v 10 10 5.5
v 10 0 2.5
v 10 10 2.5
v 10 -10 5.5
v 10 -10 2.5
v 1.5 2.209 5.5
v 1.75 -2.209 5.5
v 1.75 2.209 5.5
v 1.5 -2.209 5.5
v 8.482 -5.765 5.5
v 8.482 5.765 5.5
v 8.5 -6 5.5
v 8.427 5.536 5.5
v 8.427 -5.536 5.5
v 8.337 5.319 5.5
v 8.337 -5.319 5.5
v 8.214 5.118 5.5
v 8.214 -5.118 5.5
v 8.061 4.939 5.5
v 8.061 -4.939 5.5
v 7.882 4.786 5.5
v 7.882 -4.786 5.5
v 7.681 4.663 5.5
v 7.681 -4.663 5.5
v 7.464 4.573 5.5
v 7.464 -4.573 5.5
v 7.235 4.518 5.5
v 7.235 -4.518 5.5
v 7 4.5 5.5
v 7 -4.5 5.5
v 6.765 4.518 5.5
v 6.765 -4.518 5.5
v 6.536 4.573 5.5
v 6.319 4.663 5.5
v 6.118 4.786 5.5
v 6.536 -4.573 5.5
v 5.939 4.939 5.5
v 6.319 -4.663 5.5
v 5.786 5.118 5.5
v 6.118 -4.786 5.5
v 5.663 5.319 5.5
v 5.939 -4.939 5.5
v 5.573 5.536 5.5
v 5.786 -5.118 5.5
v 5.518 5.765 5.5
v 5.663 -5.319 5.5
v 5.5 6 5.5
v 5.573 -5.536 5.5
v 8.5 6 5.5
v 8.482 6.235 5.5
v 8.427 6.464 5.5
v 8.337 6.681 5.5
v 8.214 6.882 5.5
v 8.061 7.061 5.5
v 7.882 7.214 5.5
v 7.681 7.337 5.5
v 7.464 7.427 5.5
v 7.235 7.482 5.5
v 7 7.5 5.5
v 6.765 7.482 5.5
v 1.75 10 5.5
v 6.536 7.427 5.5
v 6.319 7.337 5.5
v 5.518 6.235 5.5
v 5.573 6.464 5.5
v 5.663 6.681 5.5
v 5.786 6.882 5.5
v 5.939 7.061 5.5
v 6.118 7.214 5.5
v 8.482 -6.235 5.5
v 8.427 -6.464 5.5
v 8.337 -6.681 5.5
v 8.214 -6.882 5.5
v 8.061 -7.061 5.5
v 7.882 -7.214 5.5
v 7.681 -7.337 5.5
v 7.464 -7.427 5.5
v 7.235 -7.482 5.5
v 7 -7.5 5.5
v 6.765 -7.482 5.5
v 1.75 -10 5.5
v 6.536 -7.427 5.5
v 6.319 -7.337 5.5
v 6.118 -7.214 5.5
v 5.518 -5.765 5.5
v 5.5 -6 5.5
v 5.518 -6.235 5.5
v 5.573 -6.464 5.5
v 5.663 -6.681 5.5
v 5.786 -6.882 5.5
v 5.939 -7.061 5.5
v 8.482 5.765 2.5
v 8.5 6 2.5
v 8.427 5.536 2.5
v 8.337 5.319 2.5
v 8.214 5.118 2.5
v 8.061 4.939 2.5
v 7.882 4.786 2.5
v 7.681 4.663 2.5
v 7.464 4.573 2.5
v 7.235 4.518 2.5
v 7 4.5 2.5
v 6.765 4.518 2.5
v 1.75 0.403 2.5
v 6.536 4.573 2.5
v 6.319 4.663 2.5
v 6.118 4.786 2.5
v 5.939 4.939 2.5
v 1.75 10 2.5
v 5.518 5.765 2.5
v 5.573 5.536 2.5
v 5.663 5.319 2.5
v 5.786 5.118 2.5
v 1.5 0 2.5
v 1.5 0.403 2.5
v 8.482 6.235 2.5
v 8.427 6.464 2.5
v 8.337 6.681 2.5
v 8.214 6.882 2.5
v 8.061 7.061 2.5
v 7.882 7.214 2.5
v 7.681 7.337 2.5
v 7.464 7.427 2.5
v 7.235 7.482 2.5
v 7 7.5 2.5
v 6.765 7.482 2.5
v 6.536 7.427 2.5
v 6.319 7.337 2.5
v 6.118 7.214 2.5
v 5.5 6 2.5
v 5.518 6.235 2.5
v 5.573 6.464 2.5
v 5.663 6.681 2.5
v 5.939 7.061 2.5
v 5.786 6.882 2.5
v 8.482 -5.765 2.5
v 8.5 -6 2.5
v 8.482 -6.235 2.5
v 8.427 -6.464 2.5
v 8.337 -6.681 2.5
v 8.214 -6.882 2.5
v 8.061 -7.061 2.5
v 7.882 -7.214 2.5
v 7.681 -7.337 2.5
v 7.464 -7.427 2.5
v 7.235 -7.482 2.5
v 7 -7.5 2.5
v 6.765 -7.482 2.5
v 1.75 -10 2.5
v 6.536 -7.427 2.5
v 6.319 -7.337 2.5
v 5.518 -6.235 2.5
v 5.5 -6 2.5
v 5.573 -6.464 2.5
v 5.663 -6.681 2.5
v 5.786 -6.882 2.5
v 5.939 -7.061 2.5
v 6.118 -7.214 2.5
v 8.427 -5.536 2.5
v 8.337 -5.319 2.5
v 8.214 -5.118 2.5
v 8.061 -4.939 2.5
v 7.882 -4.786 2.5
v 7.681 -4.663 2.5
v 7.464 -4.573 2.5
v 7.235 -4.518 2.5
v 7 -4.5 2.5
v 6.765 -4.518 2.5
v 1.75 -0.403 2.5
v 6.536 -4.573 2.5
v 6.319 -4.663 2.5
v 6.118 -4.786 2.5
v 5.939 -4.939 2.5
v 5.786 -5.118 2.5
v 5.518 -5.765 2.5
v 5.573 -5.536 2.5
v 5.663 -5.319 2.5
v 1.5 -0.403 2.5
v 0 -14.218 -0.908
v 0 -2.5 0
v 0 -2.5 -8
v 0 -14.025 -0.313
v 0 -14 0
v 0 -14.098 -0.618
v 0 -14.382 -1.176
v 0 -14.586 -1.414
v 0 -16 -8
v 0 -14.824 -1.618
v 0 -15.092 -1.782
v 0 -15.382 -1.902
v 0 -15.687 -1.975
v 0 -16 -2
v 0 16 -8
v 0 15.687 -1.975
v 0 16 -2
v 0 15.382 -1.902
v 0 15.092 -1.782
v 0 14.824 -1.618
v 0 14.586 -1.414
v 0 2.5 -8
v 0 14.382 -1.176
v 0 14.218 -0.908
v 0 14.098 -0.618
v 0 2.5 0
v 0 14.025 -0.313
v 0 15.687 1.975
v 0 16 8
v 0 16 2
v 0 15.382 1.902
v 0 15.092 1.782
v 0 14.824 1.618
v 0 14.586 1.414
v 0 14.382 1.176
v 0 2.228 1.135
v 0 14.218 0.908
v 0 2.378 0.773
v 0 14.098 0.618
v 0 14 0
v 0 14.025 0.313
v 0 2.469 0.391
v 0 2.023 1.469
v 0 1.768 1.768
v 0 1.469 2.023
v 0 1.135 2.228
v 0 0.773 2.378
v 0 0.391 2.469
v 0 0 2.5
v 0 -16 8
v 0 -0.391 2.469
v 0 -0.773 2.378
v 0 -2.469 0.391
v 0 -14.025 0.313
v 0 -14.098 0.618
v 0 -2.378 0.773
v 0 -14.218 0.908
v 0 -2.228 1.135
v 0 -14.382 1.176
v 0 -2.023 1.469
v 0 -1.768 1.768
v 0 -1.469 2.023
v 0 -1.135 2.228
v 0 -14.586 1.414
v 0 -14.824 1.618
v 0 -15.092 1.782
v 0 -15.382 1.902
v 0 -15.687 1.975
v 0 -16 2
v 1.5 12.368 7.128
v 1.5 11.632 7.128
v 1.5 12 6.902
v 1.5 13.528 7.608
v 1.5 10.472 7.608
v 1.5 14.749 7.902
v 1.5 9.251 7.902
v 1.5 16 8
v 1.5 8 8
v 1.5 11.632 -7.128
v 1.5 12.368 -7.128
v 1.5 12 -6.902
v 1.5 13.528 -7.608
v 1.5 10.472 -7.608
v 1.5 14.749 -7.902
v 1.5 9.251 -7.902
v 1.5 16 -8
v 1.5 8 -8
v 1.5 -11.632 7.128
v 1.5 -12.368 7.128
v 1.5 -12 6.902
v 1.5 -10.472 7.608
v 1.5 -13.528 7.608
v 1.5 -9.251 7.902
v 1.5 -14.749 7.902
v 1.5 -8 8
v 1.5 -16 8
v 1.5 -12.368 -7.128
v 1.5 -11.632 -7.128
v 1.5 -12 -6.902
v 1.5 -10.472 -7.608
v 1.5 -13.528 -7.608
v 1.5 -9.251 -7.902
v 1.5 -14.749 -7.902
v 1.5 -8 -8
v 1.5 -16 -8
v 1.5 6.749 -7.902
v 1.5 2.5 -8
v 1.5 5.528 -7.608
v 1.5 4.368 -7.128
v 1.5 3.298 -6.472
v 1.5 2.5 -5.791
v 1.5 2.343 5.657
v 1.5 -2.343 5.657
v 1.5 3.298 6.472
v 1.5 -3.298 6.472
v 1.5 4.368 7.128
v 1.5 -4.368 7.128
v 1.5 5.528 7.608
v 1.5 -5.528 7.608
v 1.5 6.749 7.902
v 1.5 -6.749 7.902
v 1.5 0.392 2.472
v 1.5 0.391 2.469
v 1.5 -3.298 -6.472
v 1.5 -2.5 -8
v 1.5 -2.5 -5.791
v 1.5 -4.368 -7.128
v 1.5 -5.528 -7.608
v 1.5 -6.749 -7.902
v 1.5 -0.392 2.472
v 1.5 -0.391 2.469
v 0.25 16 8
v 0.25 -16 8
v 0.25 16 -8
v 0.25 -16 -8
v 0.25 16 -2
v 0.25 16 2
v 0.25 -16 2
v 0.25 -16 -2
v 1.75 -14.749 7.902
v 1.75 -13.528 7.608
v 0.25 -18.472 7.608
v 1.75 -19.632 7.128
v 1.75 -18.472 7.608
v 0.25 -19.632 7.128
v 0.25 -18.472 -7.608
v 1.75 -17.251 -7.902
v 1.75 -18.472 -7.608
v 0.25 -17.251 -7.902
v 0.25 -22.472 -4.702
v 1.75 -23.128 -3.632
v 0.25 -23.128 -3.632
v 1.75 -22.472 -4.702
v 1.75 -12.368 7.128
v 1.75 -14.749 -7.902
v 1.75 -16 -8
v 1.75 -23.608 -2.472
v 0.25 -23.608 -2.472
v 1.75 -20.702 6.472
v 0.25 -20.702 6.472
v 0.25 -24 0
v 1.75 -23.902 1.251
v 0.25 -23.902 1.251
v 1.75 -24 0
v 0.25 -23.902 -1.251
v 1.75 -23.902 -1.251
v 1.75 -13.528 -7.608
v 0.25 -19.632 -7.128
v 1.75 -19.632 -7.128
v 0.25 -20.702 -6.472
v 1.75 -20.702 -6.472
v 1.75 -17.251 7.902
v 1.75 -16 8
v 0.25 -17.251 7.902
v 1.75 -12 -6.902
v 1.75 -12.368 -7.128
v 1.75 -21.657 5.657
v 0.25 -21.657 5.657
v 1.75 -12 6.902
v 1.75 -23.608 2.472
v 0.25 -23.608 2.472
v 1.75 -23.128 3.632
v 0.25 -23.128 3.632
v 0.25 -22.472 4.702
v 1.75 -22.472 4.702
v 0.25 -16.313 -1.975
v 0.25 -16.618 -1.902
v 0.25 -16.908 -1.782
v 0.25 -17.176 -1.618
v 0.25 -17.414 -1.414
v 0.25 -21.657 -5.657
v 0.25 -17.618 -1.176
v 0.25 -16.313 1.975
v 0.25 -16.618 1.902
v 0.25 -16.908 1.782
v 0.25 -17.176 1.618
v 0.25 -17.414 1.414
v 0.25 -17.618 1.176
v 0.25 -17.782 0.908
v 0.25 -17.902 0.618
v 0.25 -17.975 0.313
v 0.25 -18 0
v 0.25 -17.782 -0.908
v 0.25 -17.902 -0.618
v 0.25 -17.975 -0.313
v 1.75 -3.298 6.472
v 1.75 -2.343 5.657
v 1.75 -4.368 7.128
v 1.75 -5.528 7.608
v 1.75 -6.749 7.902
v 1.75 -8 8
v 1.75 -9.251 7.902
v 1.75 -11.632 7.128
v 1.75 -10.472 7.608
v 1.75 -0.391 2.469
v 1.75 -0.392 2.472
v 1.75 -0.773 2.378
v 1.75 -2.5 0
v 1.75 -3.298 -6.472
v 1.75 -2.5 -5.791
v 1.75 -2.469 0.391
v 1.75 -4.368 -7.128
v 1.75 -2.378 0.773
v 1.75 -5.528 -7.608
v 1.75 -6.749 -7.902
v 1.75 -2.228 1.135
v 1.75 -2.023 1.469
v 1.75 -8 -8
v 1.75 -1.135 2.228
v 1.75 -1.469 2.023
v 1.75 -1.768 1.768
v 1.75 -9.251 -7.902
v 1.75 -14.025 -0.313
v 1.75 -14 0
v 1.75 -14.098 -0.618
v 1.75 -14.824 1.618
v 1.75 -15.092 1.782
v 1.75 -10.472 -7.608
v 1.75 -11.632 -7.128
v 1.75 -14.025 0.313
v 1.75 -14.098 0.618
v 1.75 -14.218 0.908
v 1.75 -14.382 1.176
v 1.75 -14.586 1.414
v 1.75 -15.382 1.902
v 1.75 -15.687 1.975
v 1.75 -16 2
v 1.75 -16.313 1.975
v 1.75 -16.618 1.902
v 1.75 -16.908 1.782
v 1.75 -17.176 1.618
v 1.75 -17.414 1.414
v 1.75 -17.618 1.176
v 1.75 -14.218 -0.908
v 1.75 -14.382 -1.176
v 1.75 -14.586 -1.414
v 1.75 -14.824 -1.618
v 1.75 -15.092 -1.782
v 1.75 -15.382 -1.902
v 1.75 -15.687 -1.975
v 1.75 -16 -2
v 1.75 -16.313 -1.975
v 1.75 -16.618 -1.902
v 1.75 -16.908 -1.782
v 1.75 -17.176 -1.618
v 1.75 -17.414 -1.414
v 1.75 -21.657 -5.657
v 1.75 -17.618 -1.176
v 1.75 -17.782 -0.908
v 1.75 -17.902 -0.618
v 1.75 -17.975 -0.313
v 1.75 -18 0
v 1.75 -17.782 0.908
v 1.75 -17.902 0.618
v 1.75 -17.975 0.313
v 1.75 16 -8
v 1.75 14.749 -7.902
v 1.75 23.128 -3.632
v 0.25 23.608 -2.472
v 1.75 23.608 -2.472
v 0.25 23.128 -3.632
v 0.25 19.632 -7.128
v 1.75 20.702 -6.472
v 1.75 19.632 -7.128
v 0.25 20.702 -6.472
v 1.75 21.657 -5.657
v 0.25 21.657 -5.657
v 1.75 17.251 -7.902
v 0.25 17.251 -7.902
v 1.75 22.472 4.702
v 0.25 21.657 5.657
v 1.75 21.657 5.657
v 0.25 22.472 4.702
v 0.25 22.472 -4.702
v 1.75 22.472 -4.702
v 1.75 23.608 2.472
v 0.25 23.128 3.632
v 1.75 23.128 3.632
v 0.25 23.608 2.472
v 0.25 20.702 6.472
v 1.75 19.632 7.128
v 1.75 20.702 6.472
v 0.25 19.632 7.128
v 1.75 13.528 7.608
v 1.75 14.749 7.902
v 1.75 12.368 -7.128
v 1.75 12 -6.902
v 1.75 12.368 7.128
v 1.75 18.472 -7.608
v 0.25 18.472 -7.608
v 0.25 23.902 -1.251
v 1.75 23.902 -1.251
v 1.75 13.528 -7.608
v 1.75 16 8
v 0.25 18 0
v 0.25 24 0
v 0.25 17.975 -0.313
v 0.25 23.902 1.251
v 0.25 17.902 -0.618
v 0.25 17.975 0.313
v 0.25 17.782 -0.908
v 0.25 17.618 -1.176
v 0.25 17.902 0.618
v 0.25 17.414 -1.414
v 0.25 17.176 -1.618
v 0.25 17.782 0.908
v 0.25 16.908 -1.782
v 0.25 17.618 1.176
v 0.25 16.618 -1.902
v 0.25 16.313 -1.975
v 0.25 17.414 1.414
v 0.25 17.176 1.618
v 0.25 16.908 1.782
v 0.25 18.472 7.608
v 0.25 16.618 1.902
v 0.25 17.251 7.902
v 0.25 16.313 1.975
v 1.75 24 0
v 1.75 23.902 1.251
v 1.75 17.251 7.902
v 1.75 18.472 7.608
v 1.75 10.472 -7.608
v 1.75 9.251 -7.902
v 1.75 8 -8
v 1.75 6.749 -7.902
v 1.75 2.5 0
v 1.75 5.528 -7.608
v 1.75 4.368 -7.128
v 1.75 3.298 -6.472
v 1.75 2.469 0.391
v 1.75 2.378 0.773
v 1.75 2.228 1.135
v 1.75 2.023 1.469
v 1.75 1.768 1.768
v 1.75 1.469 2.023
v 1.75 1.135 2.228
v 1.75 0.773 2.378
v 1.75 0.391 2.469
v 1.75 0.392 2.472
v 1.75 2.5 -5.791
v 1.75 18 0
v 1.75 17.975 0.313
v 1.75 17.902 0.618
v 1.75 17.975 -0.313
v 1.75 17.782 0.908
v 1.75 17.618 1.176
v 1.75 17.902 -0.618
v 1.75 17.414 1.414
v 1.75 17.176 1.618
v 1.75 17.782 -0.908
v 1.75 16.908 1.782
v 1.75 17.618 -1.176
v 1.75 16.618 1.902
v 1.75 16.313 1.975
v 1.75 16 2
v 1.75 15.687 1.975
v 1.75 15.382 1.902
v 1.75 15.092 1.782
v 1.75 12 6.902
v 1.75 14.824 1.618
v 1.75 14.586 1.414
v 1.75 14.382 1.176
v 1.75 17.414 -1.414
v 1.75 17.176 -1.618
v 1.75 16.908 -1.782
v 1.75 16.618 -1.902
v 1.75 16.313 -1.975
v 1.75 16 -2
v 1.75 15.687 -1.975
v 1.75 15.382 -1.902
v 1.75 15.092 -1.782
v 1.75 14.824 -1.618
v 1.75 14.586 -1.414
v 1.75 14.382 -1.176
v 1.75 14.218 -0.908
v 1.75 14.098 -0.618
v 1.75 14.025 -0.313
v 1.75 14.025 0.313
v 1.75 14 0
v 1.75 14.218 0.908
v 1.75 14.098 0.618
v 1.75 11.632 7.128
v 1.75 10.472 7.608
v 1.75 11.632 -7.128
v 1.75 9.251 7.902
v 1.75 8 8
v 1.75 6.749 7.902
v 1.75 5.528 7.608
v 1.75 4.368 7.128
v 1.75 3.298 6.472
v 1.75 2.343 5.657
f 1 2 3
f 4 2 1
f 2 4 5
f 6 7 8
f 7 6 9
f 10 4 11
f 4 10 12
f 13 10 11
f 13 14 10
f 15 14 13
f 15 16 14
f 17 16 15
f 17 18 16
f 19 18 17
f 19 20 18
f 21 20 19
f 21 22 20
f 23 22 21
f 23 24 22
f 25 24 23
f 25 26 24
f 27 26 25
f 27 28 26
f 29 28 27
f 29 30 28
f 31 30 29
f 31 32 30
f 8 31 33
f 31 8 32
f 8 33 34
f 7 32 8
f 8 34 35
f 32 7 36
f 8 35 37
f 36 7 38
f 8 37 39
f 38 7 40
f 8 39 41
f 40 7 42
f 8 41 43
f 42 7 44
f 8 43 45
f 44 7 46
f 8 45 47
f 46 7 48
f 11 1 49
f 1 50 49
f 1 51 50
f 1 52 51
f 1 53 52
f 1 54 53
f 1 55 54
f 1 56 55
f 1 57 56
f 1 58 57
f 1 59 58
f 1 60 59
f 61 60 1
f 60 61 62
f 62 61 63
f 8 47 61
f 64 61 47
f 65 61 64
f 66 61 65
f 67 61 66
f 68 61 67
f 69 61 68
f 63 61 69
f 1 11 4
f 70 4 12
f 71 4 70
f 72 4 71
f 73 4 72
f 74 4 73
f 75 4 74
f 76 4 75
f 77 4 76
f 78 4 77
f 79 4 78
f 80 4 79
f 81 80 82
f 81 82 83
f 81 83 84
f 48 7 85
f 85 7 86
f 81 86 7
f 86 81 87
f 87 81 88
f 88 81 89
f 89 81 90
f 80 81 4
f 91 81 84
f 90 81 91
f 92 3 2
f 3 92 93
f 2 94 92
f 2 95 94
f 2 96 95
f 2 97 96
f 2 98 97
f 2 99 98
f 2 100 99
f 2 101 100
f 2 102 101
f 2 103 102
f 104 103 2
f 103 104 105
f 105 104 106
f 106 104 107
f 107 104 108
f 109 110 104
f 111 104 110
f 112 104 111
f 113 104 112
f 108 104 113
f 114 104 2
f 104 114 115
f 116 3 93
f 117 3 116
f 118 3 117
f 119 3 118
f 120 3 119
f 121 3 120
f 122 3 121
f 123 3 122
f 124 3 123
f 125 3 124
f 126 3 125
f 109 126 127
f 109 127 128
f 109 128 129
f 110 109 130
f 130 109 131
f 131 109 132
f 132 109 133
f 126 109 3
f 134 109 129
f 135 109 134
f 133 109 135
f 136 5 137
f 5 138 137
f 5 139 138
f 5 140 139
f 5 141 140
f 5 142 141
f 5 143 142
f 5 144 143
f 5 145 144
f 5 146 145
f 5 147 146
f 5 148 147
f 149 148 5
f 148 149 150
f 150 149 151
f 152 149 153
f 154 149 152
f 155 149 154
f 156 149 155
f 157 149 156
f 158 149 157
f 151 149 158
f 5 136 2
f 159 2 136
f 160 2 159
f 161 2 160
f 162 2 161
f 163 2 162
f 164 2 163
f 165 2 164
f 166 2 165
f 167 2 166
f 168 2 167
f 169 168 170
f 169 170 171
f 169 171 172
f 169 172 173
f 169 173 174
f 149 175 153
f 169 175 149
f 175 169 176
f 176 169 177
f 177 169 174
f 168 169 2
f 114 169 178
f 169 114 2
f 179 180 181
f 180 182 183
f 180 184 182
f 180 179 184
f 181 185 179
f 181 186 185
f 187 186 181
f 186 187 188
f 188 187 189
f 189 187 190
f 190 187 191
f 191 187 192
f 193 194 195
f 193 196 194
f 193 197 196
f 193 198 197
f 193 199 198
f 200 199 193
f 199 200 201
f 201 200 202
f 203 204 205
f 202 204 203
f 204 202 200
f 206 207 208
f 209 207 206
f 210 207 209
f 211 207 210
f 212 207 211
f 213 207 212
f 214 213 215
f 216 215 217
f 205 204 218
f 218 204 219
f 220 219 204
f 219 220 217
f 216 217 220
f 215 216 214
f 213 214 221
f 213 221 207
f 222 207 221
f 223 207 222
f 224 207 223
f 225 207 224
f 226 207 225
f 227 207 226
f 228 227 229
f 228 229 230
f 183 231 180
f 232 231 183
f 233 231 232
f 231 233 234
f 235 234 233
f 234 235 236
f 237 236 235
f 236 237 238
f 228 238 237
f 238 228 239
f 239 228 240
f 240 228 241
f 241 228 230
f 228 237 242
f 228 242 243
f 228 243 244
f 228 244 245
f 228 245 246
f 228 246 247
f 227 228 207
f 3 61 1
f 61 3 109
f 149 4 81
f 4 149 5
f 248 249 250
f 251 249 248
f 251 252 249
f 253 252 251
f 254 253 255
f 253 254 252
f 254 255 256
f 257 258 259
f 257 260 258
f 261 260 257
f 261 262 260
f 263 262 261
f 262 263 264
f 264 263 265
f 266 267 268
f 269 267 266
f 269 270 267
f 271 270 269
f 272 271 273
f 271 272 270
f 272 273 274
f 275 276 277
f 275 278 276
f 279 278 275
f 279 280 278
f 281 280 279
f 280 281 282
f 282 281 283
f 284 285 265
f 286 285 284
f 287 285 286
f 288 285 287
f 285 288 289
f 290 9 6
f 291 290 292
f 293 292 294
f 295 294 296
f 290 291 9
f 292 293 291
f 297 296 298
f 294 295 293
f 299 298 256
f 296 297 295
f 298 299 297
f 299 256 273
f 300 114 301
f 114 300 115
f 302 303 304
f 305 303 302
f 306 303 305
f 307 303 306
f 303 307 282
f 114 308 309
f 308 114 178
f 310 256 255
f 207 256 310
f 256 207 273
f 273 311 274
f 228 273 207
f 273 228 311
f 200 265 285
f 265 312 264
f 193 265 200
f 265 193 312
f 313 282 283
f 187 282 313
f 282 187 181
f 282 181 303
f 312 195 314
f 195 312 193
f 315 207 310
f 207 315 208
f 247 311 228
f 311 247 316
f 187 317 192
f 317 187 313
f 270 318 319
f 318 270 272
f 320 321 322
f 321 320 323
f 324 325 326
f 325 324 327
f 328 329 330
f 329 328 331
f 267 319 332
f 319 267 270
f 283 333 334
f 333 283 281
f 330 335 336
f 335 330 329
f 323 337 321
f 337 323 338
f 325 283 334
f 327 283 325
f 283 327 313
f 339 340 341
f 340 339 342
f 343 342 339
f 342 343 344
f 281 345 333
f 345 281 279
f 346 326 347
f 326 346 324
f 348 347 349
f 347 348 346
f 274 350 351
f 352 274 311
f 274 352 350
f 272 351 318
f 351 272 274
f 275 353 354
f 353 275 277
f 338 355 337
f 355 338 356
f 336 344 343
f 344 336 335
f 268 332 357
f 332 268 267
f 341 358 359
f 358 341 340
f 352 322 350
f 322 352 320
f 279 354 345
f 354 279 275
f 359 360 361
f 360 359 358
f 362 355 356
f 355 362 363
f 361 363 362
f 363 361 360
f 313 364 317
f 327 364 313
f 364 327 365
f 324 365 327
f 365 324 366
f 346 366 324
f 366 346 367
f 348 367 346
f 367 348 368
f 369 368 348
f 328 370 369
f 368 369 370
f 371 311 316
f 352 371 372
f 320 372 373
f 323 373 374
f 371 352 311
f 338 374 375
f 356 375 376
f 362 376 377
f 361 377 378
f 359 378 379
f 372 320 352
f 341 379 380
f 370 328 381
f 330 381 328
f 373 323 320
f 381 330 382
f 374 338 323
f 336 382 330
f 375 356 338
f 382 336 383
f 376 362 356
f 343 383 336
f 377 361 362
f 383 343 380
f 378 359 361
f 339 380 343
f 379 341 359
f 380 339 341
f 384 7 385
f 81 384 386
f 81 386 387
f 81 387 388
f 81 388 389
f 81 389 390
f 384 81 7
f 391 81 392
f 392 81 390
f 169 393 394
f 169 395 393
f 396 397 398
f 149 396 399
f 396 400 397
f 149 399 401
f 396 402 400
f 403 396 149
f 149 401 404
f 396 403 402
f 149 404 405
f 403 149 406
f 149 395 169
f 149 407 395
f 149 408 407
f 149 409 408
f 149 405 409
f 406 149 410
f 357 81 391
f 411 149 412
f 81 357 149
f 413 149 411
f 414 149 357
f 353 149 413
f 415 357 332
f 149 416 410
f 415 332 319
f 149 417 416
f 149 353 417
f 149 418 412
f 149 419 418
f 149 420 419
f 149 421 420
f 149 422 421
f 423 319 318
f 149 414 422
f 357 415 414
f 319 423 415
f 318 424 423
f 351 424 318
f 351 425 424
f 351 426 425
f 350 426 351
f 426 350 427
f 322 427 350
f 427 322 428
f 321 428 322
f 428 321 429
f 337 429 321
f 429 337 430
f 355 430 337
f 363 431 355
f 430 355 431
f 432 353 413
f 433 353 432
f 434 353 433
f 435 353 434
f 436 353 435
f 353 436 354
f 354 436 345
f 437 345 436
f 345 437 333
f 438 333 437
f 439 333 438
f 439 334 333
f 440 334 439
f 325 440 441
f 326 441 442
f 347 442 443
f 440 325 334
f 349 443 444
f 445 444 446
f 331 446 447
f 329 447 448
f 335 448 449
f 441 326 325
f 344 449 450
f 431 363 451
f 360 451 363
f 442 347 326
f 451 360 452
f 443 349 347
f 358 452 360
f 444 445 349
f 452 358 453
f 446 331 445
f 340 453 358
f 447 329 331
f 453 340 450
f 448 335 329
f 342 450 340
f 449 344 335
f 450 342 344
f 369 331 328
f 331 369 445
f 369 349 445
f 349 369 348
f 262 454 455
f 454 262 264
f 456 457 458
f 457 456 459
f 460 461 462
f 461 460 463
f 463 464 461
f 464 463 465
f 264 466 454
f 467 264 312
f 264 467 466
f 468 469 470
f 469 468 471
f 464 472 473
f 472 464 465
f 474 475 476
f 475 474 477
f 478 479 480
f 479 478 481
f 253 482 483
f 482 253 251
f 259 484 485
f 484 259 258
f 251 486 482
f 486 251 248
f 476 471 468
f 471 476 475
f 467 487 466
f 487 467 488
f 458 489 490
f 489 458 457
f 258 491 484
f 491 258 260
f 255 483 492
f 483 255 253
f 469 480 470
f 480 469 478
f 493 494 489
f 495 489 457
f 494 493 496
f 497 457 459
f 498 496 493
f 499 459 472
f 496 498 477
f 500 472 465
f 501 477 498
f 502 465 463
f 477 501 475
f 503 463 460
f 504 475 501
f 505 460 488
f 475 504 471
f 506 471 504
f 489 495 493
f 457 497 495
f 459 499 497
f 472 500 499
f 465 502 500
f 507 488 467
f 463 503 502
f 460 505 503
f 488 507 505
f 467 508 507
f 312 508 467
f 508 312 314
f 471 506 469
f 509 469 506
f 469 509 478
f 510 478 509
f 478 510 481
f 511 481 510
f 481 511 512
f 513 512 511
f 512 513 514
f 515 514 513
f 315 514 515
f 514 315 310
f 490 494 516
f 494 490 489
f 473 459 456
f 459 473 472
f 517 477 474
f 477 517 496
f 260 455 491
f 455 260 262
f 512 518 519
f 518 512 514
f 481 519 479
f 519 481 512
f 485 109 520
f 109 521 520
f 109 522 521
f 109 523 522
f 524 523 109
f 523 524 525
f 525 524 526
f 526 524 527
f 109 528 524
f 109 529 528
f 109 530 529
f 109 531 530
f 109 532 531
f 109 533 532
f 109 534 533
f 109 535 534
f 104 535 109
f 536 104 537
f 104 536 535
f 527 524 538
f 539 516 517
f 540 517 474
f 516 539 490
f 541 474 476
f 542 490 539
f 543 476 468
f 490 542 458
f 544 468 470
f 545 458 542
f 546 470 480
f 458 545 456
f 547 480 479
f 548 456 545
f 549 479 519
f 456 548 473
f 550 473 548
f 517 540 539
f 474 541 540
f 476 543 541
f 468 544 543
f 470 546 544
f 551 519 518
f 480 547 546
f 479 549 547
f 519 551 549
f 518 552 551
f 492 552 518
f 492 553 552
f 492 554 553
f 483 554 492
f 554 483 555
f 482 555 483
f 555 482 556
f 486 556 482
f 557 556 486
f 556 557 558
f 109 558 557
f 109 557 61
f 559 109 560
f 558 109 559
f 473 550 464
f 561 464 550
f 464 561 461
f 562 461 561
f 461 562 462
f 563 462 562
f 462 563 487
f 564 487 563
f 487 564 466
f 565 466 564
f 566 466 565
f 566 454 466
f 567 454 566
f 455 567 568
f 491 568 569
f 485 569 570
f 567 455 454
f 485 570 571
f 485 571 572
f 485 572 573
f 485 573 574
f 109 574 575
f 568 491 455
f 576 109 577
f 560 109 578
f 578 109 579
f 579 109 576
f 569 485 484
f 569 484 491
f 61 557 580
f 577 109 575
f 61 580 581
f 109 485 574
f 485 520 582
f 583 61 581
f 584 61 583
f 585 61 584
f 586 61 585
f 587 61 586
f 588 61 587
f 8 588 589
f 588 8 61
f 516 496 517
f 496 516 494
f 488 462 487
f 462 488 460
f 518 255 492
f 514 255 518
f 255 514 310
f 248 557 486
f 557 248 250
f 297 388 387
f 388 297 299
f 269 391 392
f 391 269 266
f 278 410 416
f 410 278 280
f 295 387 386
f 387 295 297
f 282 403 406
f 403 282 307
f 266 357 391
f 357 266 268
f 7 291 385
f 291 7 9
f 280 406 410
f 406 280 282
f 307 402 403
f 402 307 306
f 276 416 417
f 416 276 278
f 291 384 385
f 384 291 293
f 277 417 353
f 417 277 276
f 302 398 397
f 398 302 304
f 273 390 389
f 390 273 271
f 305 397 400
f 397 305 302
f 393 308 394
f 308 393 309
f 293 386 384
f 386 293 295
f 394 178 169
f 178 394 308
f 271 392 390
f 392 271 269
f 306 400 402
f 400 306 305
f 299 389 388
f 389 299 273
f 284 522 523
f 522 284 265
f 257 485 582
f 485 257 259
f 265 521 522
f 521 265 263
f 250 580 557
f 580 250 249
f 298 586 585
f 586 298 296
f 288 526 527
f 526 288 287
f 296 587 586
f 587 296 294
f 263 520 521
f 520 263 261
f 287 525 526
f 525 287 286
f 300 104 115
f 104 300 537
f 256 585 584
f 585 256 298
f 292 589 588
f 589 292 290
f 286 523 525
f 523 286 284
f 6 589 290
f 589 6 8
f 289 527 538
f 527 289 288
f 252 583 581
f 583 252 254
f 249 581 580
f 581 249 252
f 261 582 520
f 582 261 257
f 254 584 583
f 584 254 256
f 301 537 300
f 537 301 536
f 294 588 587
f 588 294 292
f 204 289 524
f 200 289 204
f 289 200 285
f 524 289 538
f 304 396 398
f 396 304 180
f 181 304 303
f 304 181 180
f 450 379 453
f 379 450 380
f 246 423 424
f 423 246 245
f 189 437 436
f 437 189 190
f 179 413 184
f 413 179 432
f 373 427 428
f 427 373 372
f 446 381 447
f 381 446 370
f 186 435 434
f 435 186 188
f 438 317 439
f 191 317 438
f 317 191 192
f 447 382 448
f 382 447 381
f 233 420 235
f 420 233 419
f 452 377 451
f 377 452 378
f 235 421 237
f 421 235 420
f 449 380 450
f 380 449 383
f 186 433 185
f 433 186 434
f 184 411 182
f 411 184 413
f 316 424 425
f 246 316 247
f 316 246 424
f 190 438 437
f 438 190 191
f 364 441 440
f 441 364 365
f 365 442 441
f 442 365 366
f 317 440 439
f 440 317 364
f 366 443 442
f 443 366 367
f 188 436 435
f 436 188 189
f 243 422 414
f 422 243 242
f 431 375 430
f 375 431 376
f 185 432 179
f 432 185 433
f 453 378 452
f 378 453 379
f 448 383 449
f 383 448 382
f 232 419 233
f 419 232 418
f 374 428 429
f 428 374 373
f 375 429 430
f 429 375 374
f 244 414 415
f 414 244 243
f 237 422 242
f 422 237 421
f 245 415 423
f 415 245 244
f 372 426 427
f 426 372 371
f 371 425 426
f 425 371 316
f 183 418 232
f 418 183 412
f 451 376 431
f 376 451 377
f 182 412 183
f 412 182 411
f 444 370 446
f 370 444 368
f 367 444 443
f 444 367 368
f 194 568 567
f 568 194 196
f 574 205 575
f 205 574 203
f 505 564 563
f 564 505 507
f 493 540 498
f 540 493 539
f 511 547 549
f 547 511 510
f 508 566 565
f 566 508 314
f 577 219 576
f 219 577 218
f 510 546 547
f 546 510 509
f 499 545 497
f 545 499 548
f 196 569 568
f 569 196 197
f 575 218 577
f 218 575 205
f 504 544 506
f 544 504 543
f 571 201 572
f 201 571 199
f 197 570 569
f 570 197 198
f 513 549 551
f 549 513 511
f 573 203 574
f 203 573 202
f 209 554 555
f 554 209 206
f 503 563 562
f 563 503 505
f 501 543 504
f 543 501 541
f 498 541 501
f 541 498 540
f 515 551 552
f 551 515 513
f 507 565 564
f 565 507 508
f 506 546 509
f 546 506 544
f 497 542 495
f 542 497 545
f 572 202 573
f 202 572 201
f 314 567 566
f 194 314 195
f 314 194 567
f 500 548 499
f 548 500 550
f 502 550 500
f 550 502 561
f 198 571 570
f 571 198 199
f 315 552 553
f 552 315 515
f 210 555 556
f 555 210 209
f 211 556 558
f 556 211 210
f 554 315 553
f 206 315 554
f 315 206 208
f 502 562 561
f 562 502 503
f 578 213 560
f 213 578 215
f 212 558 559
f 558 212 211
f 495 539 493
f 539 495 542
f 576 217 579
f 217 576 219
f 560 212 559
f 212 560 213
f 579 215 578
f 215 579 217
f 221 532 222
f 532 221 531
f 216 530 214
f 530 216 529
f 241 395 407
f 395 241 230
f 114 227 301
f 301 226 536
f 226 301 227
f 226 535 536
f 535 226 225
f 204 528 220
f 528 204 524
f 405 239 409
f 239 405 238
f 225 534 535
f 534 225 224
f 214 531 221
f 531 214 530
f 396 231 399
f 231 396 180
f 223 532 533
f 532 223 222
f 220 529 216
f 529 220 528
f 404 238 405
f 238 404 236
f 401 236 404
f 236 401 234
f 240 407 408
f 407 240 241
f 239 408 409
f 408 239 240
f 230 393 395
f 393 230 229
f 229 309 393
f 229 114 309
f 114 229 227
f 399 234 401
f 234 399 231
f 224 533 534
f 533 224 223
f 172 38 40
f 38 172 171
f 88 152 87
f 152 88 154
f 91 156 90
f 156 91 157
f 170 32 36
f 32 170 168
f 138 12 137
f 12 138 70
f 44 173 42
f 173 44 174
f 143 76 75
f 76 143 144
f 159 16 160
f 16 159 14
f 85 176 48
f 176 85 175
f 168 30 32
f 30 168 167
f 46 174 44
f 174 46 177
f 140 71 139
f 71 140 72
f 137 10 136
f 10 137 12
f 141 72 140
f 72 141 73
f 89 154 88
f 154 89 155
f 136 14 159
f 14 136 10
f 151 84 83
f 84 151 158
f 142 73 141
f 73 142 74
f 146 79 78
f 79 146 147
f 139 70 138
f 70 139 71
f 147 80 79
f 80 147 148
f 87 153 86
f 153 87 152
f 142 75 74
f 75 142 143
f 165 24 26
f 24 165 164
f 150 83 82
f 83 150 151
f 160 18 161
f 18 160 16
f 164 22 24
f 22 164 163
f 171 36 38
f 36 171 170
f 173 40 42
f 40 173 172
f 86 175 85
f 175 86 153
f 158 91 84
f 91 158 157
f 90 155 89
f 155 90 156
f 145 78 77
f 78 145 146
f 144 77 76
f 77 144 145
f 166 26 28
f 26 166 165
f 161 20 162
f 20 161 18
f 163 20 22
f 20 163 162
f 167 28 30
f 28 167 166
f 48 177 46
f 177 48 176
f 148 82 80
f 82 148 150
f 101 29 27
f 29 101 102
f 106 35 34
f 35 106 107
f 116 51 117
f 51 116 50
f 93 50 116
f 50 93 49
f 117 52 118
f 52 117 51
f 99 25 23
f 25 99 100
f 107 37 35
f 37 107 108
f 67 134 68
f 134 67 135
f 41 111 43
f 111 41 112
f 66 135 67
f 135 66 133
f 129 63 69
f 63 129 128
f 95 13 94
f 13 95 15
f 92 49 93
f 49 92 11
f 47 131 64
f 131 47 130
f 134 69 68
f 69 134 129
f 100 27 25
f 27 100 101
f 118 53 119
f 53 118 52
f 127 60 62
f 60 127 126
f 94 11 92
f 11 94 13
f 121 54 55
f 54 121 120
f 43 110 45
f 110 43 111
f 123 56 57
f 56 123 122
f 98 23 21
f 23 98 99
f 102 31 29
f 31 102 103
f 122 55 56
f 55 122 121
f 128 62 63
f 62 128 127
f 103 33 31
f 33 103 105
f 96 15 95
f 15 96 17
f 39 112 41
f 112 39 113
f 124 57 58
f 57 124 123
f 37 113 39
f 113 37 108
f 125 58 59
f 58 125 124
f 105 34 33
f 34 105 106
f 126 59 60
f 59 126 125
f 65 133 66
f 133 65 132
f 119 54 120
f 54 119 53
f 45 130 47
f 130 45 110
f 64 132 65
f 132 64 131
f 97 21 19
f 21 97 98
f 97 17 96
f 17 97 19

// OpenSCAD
plaat_breedte = 136;
plaat_hoogte = 146;
hoekradius = 10;
plaat_dikte = 3; 
totale_hoogte = 50;
$fn = 96;
module buitenvorm_2d() {
    translate([hoekradius, hoekradius])
        offset(r = hoekradius)
            square([plaat_breedte - 2*hoekradius,
                    plaat_hoogte - 2*hoekradius]);
}
module binnenvorm_2d() {
    translate([hoekradius, hoekradius])
        offset(r = hoekradius)
            square([plaat_breedte - 2*plaat_dikte - 2*hoekradius,
                    plaat_hoogte - 2*plaat_dikte - 2*hoekradius]);
}

module kast() {
    difference() {
        linear_extrude(height = totale_hoogte) buitenvorm_2d();
        translate([plaat_dikte, plaat_dikte, plaat_dikte])linear_extrude(height = 99) binnenvorm_2d();
    }
}

module uitsparing_power(){
     translate([-2,-2.5,-10]) cube([10, 5,10]);
 
     translate([40, -16, 0]) rotate([0, 90, 0]) cylinder(h=80, d=4, center=true, $fn=40);
     translate([40, 16, 0])  rotate([0, 90, 0]) cylinder(h=80, d=4, center=true, $fn=40);
     translate([40, 0, 0]) rotate([0, 90, 0]) cylinder(h=80, d=5, center=true, $fn=40);

    
 }

// Voor een vlakke DXF/SVG-export: vervang onderstaande regel door paneel_2d();
    difference() {
        union() {
            translate([0,-10,2.5]) cube([10, 20,3]);


            translate([0,-16,-8]) cube([1.5, 32, 16]);
            translate([1, -16, 0]) rotate([0, 90, 0]) cylinder(h=1.5, d=16, center=true, $fn=40);
            translate([1, 16, 0])  rotate([0, 90, 0]) cylinder(h=1.5, d=16, center=true, $fn=40);
            translate([1, -8, 0]) rotate([0, 90, 0]) cylinder(h=1.5, d=16, center=true, $fn=40);
            translate([1, 8, 0])  rotate([0, 90, 0]) cylinder(h=1.5, d=16, center=true, $fn=40);
        }
        union() {
  
            translate([-2,0,0]) uitsparing_power();
            translate([7, -6, 0]) rotate([0, 0, 0]) cylinder(h=80, d=3, center=true, $fn=40);
            translate([7, 6, 0])  rotate([0, 0, 0]) cylinder(h=80, d=3, center=true, $fn=40);
            
        }
    }
